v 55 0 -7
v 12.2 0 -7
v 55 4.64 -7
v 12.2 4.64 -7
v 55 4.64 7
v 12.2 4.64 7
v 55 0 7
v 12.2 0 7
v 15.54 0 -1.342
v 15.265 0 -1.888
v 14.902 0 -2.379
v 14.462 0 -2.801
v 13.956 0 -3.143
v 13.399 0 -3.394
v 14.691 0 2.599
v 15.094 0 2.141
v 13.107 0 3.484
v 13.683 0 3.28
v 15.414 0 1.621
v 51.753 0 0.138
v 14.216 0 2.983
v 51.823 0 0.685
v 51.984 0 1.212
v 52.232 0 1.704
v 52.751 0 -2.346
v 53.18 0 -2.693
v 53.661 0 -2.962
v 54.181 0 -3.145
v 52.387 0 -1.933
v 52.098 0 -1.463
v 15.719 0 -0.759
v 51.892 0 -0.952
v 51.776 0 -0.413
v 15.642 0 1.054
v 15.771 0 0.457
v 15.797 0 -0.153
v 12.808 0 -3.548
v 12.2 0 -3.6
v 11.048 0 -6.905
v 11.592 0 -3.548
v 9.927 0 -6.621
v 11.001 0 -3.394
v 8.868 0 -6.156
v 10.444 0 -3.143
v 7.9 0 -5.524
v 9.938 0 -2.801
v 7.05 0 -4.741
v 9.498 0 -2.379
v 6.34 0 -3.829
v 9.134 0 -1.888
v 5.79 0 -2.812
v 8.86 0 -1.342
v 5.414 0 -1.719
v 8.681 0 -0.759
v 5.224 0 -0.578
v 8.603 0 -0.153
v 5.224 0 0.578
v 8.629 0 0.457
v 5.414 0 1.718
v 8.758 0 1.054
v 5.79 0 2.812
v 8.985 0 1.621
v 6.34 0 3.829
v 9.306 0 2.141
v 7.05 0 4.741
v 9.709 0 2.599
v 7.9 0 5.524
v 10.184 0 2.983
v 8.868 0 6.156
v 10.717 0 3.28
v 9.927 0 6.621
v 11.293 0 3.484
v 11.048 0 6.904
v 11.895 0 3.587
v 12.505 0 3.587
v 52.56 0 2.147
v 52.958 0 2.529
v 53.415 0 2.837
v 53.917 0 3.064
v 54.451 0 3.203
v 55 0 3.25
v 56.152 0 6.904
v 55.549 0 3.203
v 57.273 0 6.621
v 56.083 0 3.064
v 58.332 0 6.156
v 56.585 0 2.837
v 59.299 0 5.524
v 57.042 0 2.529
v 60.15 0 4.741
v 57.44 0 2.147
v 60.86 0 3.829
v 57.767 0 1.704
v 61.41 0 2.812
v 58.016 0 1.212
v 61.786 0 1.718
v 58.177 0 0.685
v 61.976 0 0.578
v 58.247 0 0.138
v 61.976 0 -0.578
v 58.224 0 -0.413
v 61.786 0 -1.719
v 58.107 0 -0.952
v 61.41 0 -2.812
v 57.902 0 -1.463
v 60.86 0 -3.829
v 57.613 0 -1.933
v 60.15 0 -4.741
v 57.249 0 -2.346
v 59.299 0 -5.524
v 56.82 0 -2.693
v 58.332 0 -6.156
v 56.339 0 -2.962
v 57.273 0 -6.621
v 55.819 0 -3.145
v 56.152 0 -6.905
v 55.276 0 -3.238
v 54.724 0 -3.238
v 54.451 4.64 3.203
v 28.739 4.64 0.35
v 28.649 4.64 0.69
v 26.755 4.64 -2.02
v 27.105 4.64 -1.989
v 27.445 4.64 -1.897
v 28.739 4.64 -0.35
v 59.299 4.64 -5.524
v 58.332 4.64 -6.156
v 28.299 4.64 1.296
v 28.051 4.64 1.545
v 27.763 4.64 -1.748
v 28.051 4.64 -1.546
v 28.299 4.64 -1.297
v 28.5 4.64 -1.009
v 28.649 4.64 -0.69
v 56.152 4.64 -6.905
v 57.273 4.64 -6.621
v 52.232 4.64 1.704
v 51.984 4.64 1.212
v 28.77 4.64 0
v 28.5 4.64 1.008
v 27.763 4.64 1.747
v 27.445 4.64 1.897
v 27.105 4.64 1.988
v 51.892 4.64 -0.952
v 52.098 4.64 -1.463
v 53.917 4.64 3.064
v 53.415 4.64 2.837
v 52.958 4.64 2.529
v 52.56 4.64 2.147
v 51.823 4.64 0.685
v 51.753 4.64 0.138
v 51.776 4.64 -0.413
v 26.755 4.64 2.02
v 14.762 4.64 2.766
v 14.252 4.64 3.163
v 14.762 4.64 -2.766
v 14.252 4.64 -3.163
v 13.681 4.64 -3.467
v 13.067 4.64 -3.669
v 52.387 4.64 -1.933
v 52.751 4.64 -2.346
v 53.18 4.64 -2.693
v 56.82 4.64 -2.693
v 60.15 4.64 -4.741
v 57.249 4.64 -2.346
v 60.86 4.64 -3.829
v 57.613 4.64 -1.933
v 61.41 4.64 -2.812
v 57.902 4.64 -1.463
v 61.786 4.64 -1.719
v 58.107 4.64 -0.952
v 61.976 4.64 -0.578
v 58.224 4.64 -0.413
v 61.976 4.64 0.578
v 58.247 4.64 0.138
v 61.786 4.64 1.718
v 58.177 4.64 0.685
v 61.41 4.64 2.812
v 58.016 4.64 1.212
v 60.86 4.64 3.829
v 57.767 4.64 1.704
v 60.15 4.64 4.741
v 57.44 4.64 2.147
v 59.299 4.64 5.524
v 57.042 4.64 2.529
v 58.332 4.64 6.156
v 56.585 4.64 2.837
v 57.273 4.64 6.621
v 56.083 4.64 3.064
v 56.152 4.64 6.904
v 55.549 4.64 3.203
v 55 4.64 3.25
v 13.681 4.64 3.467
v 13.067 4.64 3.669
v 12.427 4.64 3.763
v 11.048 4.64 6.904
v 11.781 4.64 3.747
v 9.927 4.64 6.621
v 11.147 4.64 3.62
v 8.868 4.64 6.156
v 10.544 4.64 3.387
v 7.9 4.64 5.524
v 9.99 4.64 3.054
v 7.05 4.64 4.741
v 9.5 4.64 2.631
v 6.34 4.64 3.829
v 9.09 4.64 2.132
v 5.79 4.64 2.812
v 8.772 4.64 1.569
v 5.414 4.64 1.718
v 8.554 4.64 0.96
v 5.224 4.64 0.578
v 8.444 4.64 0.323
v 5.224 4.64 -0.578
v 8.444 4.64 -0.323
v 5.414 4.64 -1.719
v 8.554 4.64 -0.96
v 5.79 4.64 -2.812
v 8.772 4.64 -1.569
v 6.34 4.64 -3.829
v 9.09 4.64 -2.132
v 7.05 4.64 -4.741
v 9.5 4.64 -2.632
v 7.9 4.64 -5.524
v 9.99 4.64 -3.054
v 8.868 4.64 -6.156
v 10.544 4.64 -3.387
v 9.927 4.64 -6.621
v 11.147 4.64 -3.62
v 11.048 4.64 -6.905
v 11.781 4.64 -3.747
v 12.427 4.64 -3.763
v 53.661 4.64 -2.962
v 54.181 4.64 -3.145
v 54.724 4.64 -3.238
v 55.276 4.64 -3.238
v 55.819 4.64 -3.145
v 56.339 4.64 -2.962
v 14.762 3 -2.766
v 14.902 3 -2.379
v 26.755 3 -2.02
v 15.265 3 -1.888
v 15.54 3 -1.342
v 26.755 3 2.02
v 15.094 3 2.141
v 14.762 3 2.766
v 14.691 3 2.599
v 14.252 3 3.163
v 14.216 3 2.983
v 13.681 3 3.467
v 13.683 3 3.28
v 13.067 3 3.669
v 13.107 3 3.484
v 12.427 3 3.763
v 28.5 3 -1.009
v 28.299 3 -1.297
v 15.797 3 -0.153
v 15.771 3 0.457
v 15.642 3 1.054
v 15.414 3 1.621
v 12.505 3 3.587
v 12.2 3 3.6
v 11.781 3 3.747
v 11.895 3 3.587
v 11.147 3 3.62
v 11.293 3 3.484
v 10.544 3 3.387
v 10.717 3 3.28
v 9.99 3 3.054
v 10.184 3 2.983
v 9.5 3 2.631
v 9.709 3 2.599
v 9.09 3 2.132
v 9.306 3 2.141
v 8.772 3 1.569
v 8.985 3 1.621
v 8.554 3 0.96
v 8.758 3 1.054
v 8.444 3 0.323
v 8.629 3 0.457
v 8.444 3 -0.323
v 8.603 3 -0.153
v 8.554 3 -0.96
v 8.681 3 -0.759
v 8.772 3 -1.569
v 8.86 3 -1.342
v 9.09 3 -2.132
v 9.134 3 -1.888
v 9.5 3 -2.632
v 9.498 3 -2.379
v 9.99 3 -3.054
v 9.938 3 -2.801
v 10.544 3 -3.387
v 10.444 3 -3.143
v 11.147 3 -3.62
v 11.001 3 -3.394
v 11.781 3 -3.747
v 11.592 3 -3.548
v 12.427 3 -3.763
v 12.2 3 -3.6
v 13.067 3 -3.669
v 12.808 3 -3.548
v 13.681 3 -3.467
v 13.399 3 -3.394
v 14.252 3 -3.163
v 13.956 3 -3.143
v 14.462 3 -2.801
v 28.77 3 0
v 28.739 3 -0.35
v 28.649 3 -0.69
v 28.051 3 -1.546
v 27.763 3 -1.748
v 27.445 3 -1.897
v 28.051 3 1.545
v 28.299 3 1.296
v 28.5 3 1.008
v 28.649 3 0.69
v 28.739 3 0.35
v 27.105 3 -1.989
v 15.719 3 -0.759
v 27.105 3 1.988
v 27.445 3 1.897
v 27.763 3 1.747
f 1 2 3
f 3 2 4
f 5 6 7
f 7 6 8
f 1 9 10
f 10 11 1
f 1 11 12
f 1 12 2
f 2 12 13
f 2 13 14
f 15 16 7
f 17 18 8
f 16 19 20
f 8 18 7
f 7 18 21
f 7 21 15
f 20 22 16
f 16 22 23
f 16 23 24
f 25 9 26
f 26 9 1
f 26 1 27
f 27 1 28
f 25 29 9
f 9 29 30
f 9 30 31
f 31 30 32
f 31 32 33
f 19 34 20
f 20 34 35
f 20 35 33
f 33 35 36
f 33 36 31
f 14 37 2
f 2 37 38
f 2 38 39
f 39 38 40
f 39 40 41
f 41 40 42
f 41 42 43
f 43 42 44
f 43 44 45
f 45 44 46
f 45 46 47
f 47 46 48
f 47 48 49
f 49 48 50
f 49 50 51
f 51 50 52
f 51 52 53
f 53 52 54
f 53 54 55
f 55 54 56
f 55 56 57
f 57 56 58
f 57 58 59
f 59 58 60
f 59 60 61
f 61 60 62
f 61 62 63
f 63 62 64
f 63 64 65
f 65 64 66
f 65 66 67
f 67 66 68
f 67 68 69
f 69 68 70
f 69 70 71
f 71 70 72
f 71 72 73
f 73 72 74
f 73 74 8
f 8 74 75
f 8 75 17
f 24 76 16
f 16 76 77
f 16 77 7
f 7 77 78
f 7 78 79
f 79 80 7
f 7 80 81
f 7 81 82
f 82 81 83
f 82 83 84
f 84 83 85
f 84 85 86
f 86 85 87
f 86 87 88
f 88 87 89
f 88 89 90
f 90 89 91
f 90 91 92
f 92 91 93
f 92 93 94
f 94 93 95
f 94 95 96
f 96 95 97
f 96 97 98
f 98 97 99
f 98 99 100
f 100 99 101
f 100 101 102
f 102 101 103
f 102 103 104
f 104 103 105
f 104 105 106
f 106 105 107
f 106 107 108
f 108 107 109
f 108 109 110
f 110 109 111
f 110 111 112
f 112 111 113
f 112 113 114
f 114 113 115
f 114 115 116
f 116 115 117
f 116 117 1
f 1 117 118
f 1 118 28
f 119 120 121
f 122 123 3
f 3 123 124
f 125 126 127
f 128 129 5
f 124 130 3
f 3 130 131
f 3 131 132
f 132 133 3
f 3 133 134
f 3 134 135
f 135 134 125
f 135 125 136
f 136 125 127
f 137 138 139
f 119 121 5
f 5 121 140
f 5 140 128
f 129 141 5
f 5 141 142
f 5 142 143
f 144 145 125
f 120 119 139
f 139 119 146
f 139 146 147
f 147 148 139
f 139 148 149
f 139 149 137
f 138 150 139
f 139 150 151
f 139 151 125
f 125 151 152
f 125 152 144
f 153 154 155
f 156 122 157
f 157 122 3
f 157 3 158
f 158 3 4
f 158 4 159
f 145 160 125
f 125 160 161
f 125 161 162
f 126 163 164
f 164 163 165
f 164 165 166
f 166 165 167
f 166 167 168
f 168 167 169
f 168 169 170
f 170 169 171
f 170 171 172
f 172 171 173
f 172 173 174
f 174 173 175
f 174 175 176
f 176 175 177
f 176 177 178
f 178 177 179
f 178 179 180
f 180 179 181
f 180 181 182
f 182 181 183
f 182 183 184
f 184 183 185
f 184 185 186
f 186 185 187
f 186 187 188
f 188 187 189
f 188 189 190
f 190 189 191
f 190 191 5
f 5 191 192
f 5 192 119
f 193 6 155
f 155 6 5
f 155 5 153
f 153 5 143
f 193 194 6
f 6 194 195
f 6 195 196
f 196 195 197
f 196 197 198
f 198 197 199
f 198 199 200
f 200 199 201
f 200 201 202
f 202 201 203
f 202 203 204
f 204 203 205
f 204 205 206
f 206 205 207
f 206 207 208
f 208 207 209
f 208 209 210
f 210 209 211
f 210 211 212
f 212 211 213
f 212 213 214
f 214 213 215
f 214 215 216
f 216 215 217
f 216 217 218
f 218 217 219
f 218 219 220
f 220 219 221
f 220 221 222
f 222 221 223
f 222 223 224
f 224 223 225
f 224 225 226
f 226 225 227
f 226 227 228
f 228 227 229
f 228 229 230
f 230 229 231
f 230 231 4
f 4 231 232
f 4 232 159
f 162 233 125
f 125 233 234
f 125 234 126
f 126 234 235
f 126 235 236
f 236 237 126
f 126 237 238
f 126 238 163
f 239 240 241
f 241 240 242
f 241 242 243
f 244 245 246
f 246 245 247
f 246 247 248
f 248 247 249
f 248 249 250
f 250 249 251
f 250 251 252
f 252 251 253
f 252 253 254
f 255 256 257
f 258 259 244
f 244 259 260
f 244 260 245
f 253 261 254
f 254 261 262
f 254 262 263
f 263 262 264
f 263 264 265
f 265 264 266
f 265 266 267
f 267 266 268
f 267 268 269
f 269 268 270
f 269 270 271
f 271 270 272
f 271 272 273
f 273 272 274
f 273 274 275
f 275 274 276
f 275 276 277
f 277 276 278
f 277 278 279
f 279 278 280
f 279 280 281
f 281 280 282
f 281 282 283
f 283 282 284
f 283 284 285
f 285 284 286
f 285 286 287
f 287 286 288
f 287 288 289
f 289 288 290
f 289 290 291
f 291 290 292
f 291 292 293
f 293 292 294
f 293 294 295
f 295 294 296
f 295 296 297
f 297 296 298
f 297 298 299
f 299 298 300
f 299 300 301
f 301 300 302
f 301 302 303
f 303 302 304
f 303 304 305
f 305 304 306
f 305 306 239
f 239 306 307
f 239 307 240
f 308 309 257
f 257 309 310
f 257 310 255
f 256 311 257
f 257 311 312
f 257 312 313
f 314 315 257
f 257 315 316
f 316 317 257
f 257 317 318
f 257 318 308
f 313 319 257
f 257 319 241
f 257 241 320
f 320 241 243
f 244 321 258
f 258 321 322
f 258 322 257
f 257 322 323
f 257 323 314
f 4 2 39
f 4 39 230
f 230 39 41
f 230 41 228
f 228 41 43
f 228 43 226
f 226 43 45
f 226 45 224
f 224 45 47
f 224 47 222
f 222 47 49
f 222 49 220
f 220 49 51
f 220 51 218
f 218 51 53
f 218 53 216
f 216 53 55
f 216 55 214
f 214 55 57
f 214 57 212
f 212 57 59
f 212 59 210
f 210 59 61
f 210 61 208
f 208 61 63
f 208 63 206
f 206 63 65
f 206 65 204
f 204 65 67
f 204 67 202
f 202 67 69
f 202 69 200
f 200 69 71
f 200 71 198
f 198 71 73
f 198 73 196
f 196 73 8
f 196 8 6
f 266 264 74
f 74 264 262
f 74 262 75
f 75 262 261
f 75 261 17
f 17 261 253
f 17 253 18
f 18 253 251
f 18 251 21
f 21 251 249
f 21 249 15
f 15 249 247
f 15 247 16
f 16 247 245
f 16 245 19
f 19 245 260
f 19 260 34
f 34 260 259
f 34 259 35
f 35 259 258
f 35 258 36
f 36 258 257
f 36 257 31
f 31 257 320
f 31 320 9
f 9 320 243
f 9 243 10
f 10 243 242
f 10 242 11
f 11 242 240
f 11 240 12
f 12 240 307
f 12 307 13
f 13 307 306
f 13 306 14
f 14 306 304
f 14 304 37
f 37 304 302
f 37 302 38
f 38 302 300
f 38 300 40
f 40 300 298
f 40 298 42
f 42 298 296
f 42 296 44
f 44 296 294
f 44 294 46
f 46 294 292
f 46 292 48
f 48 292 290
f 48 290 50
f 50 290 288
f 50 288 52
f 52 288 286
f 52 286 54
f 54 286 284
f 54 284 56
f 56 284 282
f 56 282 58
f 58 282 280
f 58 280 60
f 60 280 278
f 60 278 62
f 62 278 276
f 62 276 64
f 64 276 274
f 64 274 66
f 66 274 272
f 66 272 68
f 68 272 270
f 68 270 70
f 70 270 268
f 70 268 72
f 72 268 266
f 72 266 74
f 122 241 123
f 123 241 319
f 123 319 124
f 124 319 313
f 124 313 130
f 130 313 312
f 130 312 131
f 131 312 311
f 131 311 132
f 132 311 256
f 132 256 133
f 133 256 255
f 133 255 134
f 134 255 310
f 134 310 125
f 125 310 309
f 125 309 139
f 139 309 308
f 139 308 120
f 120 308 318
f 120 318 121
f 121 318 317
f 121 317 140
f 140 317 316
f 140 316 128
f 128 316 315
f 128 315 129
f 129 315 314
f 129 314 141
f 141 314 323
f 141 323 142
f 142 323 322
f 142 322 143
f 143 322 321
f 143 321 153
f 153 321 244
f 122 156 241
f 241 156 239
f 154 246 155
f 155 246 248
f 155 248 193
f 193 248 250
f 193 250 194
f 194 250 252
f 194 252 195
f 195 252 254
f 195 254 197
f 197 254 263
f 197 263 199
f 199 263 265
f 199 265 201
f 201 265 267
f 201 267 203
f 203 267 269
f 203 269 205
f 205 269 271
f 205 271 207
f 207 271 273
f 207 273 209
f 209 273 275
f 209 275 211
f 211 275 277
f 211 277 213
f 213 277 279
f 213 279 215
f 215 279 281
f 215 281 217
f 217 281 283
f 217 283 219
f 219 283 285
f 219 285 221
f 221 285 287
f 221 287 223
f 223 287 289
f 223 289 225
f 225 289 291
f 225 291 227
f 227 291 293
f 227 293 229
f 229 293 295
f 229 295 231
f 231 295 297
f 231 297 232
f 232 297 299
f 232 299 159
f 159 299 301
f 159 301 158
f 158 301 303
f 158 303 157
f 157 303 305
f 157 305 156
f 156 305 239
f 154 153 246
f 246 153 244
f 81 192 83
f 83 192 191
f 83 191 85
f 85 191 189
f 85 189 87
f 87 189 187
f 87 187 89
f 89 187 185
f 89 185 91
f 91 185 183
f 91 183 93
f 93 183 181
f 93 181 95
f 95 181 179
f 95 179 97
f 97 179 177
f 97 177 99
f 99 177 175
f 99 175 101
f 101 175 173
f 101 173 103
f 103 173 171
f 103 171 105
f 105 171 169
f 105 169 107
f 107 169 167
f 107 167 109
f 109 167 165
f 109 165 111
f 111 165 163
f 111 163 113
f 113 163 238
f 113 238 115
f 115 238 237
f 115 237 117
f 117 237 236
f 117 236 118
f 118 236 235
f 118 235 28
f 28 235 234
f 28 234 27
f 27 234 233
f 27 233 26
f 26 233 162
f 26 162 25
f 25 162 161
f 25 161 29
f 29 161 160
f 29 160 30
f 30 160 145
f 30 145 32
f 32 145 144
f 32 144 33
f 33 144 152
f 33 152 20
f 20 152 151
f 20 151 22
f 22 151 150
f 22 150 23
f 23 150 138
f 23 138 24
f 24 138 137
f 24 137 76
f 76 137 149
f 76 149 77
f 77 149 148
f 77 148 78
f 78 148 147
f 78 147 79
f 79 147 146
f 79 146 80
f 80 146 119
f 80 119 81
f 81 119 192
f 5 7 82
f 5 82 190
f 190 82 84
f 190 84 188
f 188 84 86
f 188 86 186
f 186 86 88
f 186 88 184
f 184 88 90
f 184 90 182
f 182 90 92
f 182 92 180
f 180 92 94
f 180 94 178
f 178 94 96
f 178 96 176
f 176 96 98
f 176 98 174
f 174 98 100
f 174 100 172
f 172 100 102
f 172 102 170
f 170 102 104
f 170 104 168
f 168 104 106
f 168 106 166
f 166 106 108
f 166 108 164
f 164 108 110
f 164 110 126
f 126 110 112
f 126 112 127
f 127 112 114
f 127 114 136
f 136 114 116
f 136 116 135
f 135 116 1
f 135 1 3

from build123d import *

# Parameters (mm, degrees)
BOSS_EXTRUDE1_DEPTH       = 3
SKETCH2_R                 = 3.6
CUT_EXTRUDE1_DEPTH        = 3.95
BOSS_EXTRUDE2_DEPTH       = 1.64
SKETCH4_R                 = 3.25
CUT_EXTRUDE2_DEPTH        = 4.64
CUT_EXTRUDE3_REACH        = 64.566
SKETCH7_W                 = 12.2
SKETCH7_H                 = 14
BODY_MOVE_COPY1_OUTLINE_R = 3.6
BODY_MOVE_COPY1_DEPTH     = 4.64
BODY_MOVE_COPY1_START     = 3
BODY_MOVE_COPY1_2_DEPTH   = 1.64
BODY_MOVE_COPY1_3_DEPTH   = 4.64
BODY_MOVE_COPY1_4_DEPTH   = 3


# Read off the part's stored shape, not the designer's step: Body-Move/Copy1
with BuildPart() as part:
    # Sketch1 → Boss-Extrude1 (new body)
    with BuildSketch(Plane(origin=(0, 0, 0), x_dir=(1, 0, 0), z_dir=(0, 1, 0))):
        with BuildLine():
            Line((0, 7), (55, 7))
            ThreePointArc((55, 7), (62, 0), (55, -7))
            Line((55, -7), (0, -7))
            ThreePointArc((0, -7), (-7, 0), (0, 7))
        make_face()
    extrude(amount=BOSS_EXTRUDE1_DEPTH)

    # Sketch2 → Cut-Extrude1 (cut)
    with BuildSketch(Plane.XZ):
        with Locations(Location((0, 0, 0), (0, 0, 270))):
            Circle(SKETCH2_R)
    extrude(amount=-CUT_EXTRUDE1_DEPTH, mode=Mode.SUBTRACT)

    # Sketch3 → Boss-Extrude2 (add)
    with BuildSketch(Plane(origin=(0, 3, 0), x_dir=(1, 0, 0), z_dir=(0, 1, 0))):
        with BuildLine():
            Line((0, -7), (55, -7))
            ThreePointArc((55, -7), (62, 0), (55, 7))
            Line((55, 7), (0, 7))
            ThreePointArc((0, 7), (-7, 0), (0, -7))
        make_face()
        with BuildLine():
            Line((14.555396889, 2.01999279), (2.561818442, 2.765860855))
            ThreePointArc((2.561818442, 2.765860855), (-3.77, 0), (2.561818442, -2.765860855))
            Line((2.561818442, -2.765860855), (14.555396889, -2.01999279))
            ThreePointArc((14.555396889, -2.01999279), (16.57, 0), (14.555396889, 2.01999279))
        make_face(mode=Mode.SUBTRACT)
    extrude(amount=BOSS_EXTRUDE2_DEPTH)

    # Sketch4 → Cut-Extrude2 (cut)
    with BuildSketch(Plane(origin=(0, 4.64, 0), x_dir=(1, 0, 0), z_dir=(0, 1, 0))):
        with Locations(Location((55, 0, 0), (0, 0, 270))):
            Circle(SKETCH4_R)
    extrude(amount=-CUT_EXTRUDE2_DEPTH, mode=Mode.SUBTRACT)

    # Sketch7 → Cut-Extrude3 (cut, up to next)
    with BuildSketch(Plane(origin=(0, 4.64, 0), x_dir=(1, 0, 0), z_dir=(0, 1, 0)), mode=Mode.PRIVATE) as cut_extrude3_sk1:
        with Locations((33.6, 0)):
            Rectangle(SKETCH7_W, SKETCH7_H)
    cut_extrude3_tool1 = extrude(cut_extrude3_sk1.sketch, amount=-CUT_EXTRUDE3_REACH, mode=Mode.PRIVATE) & part.part
    add(cut_extrude3_tool1.solids().sort_by_distance((33.6, 4.64, 0))[0], mode=Mode.SUBTRACT)


with BuildPart() as cut_extrude3_piece_1:
    # of the separate pieces the step leaves, piece 1, a body of its own (cut_extrude3_pieces)
    add(part.part.solids().sort_by_distance((0, 0, -7))[0])

    # Body-Move/Copy1 outline → Body-Move/Copy1 (cut)
    # profile 1 of 2: a face of its own
    with BuildSketch(Plane(origin=(0, 0, 0), x_dir=(1, 0, 0), z_dir=(0, 1, 0))):
        with BuildLine():
            Line((0, -7), (12.2, -7))
            ThreePointArc((12.2, -7), (5.2, 0), (12.2, 7))
            Line((12.2, 7), (0, 7))
            ThreePointArc((0, 7), (-7, 0), (0, -7))
        make_face()
        Circle(BODY_MOVE_COPY1_OUTLINE_R, mode=Mode.SUBTRACT)
    # profile 2 of 2: a face of its own
    with BuildSketch(Plane(origin=(0, 0, 0), x_dir=(1, 0, 0), z_dir=(0, 1, 0))):
        with Locations((12.2, 0)):
            Circle(BODY_MOVE_COPY1_OUTLINE_R)
    extrude(amount=BODY_MOVE_COPY1_DEPTH, mode=Mode.SUBTRACT)

    # Body-Move_Copy1 2 outline → Body-Move_Copy1 2 (cut)
    with BuildSketch(Plane(origin=(0, 0, 0), x_dir=(1, 0, 0), z_dir=(0, 1, 0)).offset(BODY_MOVE_COPY1_START)):
        with BuildLine():
            ThreePointArc((26.755396889, -2.01999279), (27.134536032, -1.983061279), (27.5, -1.875606568))
            Line((27.5, -1.875606568), (27.5, 1.875606568))
            ThreePointArc((27.5, 1.875606568), (27.134536032, 1.983061279), (26.755396889, 2.01999279))
            Line((26.755396889, 2.01999279), (14.761818442, 2.765860855))
            ThreePointArc((14.761818442, 2.765860855), (11.91613853, 3.759298161), (9.251901395, 2.349811613))
            Line((9.251901395, 2.349811613), (9.461484137, 2.336777882))
            ThreePointArc((9.461484137, 2.336777882), (12.476666707, 3.58935308), (15.264276596, 1.889499654))
            ThreePointArc((15.264276596, 1.889499654), (16.57, 0), (15.264276596, -1.889499654))
            ThreePointArc((15.264276596, -1.889499654), (12.476666707, -3.58935308), (9.461484137, -2.336777882))
            Line((9.461484137, -2.336777882), (9.251901395, -2.349811613))
            ThreePointArc((9.251901395, -2.349811613), (11.91613853, -3.759298161), (14.761818442, -2.765860855))
            Line((14.761818442, -2.765860855), (26.755396889, -2.01999279))
        make_face()
    extrude(amount=BODY_MOVE_COPY1_2_DEPTH, mode=Mode.SUBTRACT)

    # Body-Move_Copy1 3 outline → Body-Move_Copy1 3 (add)
    with BuildSketch(Plane(origin=(0, 0, 0), x_dir=(1, 0, 0), z_dir=(0, 1, 0))):
        with BuildLine():
            Line((27.5, -7), (39.7, -7))
            Line((39.7, -7), (39.7, 7))
            Line((39.7, 7), (27.5, 7))
            Line((27.5, 7), (27.5, 1.875606568))
            ThreePointArc((27.5, 1.875606568), (28.77, 0), (27.5, -1.875606568))
            Line((27.5, -1.875606568), (27.5, -7))
        make_face()
        with BuildLine():
            ThreePointArc((5.689385292, 2.571360753), (5.2, 0), (5.689385292, -2.571360753))
            Line((5.689385292, -2.571360753), (9.251901395, -2.349811613))
            ThreePointArc((9.251901395, -2.349811613), (8.43, 0), (9.251901395, 2.349811613))
            Line((9.251901395, 2.349811613), (5.689385292, 2.571360753))
        make_face()
    extrude(amount=BODY_MOVE_COPY1_3_DEPTH)

    # Body-Move_Copy1 4 outline → Body-Move_Copy1 4 (add)
    with BuildSketch(Plane(origin=(0, 0, 0), x_dir=(1, 0, 0), z_dir=(0, 1, 0))):
        with BuildLine():
            Line((27.5, 1.875606568), (27.5, -1.875606568))
            ThreePointArc((27.5, -1.875606568), (28.77, 0), (27.5, 1.875606568))
        make_face()
    extrude(amount=BODY_MOVE_COPY1_4_DEPTH)


with BuildPart() as cut_extrude3_piece_2:
    # of the separate pieces the step leaves, piece 2, a body of its own (cut_extrude3_pieces)
    add(part.part.solids().sort_by_distance((39.7, 0, -7))[0])


with BuildPart() as cut_extrude3_piece_1_1:
    add(cut_extrude3_piece_1.part)

    # Combine1: union Cut-Extrude3 piece 2
    add(cut_extrude3_piece_2.part)


solid = cut_extrude3_piece_1_1.part
